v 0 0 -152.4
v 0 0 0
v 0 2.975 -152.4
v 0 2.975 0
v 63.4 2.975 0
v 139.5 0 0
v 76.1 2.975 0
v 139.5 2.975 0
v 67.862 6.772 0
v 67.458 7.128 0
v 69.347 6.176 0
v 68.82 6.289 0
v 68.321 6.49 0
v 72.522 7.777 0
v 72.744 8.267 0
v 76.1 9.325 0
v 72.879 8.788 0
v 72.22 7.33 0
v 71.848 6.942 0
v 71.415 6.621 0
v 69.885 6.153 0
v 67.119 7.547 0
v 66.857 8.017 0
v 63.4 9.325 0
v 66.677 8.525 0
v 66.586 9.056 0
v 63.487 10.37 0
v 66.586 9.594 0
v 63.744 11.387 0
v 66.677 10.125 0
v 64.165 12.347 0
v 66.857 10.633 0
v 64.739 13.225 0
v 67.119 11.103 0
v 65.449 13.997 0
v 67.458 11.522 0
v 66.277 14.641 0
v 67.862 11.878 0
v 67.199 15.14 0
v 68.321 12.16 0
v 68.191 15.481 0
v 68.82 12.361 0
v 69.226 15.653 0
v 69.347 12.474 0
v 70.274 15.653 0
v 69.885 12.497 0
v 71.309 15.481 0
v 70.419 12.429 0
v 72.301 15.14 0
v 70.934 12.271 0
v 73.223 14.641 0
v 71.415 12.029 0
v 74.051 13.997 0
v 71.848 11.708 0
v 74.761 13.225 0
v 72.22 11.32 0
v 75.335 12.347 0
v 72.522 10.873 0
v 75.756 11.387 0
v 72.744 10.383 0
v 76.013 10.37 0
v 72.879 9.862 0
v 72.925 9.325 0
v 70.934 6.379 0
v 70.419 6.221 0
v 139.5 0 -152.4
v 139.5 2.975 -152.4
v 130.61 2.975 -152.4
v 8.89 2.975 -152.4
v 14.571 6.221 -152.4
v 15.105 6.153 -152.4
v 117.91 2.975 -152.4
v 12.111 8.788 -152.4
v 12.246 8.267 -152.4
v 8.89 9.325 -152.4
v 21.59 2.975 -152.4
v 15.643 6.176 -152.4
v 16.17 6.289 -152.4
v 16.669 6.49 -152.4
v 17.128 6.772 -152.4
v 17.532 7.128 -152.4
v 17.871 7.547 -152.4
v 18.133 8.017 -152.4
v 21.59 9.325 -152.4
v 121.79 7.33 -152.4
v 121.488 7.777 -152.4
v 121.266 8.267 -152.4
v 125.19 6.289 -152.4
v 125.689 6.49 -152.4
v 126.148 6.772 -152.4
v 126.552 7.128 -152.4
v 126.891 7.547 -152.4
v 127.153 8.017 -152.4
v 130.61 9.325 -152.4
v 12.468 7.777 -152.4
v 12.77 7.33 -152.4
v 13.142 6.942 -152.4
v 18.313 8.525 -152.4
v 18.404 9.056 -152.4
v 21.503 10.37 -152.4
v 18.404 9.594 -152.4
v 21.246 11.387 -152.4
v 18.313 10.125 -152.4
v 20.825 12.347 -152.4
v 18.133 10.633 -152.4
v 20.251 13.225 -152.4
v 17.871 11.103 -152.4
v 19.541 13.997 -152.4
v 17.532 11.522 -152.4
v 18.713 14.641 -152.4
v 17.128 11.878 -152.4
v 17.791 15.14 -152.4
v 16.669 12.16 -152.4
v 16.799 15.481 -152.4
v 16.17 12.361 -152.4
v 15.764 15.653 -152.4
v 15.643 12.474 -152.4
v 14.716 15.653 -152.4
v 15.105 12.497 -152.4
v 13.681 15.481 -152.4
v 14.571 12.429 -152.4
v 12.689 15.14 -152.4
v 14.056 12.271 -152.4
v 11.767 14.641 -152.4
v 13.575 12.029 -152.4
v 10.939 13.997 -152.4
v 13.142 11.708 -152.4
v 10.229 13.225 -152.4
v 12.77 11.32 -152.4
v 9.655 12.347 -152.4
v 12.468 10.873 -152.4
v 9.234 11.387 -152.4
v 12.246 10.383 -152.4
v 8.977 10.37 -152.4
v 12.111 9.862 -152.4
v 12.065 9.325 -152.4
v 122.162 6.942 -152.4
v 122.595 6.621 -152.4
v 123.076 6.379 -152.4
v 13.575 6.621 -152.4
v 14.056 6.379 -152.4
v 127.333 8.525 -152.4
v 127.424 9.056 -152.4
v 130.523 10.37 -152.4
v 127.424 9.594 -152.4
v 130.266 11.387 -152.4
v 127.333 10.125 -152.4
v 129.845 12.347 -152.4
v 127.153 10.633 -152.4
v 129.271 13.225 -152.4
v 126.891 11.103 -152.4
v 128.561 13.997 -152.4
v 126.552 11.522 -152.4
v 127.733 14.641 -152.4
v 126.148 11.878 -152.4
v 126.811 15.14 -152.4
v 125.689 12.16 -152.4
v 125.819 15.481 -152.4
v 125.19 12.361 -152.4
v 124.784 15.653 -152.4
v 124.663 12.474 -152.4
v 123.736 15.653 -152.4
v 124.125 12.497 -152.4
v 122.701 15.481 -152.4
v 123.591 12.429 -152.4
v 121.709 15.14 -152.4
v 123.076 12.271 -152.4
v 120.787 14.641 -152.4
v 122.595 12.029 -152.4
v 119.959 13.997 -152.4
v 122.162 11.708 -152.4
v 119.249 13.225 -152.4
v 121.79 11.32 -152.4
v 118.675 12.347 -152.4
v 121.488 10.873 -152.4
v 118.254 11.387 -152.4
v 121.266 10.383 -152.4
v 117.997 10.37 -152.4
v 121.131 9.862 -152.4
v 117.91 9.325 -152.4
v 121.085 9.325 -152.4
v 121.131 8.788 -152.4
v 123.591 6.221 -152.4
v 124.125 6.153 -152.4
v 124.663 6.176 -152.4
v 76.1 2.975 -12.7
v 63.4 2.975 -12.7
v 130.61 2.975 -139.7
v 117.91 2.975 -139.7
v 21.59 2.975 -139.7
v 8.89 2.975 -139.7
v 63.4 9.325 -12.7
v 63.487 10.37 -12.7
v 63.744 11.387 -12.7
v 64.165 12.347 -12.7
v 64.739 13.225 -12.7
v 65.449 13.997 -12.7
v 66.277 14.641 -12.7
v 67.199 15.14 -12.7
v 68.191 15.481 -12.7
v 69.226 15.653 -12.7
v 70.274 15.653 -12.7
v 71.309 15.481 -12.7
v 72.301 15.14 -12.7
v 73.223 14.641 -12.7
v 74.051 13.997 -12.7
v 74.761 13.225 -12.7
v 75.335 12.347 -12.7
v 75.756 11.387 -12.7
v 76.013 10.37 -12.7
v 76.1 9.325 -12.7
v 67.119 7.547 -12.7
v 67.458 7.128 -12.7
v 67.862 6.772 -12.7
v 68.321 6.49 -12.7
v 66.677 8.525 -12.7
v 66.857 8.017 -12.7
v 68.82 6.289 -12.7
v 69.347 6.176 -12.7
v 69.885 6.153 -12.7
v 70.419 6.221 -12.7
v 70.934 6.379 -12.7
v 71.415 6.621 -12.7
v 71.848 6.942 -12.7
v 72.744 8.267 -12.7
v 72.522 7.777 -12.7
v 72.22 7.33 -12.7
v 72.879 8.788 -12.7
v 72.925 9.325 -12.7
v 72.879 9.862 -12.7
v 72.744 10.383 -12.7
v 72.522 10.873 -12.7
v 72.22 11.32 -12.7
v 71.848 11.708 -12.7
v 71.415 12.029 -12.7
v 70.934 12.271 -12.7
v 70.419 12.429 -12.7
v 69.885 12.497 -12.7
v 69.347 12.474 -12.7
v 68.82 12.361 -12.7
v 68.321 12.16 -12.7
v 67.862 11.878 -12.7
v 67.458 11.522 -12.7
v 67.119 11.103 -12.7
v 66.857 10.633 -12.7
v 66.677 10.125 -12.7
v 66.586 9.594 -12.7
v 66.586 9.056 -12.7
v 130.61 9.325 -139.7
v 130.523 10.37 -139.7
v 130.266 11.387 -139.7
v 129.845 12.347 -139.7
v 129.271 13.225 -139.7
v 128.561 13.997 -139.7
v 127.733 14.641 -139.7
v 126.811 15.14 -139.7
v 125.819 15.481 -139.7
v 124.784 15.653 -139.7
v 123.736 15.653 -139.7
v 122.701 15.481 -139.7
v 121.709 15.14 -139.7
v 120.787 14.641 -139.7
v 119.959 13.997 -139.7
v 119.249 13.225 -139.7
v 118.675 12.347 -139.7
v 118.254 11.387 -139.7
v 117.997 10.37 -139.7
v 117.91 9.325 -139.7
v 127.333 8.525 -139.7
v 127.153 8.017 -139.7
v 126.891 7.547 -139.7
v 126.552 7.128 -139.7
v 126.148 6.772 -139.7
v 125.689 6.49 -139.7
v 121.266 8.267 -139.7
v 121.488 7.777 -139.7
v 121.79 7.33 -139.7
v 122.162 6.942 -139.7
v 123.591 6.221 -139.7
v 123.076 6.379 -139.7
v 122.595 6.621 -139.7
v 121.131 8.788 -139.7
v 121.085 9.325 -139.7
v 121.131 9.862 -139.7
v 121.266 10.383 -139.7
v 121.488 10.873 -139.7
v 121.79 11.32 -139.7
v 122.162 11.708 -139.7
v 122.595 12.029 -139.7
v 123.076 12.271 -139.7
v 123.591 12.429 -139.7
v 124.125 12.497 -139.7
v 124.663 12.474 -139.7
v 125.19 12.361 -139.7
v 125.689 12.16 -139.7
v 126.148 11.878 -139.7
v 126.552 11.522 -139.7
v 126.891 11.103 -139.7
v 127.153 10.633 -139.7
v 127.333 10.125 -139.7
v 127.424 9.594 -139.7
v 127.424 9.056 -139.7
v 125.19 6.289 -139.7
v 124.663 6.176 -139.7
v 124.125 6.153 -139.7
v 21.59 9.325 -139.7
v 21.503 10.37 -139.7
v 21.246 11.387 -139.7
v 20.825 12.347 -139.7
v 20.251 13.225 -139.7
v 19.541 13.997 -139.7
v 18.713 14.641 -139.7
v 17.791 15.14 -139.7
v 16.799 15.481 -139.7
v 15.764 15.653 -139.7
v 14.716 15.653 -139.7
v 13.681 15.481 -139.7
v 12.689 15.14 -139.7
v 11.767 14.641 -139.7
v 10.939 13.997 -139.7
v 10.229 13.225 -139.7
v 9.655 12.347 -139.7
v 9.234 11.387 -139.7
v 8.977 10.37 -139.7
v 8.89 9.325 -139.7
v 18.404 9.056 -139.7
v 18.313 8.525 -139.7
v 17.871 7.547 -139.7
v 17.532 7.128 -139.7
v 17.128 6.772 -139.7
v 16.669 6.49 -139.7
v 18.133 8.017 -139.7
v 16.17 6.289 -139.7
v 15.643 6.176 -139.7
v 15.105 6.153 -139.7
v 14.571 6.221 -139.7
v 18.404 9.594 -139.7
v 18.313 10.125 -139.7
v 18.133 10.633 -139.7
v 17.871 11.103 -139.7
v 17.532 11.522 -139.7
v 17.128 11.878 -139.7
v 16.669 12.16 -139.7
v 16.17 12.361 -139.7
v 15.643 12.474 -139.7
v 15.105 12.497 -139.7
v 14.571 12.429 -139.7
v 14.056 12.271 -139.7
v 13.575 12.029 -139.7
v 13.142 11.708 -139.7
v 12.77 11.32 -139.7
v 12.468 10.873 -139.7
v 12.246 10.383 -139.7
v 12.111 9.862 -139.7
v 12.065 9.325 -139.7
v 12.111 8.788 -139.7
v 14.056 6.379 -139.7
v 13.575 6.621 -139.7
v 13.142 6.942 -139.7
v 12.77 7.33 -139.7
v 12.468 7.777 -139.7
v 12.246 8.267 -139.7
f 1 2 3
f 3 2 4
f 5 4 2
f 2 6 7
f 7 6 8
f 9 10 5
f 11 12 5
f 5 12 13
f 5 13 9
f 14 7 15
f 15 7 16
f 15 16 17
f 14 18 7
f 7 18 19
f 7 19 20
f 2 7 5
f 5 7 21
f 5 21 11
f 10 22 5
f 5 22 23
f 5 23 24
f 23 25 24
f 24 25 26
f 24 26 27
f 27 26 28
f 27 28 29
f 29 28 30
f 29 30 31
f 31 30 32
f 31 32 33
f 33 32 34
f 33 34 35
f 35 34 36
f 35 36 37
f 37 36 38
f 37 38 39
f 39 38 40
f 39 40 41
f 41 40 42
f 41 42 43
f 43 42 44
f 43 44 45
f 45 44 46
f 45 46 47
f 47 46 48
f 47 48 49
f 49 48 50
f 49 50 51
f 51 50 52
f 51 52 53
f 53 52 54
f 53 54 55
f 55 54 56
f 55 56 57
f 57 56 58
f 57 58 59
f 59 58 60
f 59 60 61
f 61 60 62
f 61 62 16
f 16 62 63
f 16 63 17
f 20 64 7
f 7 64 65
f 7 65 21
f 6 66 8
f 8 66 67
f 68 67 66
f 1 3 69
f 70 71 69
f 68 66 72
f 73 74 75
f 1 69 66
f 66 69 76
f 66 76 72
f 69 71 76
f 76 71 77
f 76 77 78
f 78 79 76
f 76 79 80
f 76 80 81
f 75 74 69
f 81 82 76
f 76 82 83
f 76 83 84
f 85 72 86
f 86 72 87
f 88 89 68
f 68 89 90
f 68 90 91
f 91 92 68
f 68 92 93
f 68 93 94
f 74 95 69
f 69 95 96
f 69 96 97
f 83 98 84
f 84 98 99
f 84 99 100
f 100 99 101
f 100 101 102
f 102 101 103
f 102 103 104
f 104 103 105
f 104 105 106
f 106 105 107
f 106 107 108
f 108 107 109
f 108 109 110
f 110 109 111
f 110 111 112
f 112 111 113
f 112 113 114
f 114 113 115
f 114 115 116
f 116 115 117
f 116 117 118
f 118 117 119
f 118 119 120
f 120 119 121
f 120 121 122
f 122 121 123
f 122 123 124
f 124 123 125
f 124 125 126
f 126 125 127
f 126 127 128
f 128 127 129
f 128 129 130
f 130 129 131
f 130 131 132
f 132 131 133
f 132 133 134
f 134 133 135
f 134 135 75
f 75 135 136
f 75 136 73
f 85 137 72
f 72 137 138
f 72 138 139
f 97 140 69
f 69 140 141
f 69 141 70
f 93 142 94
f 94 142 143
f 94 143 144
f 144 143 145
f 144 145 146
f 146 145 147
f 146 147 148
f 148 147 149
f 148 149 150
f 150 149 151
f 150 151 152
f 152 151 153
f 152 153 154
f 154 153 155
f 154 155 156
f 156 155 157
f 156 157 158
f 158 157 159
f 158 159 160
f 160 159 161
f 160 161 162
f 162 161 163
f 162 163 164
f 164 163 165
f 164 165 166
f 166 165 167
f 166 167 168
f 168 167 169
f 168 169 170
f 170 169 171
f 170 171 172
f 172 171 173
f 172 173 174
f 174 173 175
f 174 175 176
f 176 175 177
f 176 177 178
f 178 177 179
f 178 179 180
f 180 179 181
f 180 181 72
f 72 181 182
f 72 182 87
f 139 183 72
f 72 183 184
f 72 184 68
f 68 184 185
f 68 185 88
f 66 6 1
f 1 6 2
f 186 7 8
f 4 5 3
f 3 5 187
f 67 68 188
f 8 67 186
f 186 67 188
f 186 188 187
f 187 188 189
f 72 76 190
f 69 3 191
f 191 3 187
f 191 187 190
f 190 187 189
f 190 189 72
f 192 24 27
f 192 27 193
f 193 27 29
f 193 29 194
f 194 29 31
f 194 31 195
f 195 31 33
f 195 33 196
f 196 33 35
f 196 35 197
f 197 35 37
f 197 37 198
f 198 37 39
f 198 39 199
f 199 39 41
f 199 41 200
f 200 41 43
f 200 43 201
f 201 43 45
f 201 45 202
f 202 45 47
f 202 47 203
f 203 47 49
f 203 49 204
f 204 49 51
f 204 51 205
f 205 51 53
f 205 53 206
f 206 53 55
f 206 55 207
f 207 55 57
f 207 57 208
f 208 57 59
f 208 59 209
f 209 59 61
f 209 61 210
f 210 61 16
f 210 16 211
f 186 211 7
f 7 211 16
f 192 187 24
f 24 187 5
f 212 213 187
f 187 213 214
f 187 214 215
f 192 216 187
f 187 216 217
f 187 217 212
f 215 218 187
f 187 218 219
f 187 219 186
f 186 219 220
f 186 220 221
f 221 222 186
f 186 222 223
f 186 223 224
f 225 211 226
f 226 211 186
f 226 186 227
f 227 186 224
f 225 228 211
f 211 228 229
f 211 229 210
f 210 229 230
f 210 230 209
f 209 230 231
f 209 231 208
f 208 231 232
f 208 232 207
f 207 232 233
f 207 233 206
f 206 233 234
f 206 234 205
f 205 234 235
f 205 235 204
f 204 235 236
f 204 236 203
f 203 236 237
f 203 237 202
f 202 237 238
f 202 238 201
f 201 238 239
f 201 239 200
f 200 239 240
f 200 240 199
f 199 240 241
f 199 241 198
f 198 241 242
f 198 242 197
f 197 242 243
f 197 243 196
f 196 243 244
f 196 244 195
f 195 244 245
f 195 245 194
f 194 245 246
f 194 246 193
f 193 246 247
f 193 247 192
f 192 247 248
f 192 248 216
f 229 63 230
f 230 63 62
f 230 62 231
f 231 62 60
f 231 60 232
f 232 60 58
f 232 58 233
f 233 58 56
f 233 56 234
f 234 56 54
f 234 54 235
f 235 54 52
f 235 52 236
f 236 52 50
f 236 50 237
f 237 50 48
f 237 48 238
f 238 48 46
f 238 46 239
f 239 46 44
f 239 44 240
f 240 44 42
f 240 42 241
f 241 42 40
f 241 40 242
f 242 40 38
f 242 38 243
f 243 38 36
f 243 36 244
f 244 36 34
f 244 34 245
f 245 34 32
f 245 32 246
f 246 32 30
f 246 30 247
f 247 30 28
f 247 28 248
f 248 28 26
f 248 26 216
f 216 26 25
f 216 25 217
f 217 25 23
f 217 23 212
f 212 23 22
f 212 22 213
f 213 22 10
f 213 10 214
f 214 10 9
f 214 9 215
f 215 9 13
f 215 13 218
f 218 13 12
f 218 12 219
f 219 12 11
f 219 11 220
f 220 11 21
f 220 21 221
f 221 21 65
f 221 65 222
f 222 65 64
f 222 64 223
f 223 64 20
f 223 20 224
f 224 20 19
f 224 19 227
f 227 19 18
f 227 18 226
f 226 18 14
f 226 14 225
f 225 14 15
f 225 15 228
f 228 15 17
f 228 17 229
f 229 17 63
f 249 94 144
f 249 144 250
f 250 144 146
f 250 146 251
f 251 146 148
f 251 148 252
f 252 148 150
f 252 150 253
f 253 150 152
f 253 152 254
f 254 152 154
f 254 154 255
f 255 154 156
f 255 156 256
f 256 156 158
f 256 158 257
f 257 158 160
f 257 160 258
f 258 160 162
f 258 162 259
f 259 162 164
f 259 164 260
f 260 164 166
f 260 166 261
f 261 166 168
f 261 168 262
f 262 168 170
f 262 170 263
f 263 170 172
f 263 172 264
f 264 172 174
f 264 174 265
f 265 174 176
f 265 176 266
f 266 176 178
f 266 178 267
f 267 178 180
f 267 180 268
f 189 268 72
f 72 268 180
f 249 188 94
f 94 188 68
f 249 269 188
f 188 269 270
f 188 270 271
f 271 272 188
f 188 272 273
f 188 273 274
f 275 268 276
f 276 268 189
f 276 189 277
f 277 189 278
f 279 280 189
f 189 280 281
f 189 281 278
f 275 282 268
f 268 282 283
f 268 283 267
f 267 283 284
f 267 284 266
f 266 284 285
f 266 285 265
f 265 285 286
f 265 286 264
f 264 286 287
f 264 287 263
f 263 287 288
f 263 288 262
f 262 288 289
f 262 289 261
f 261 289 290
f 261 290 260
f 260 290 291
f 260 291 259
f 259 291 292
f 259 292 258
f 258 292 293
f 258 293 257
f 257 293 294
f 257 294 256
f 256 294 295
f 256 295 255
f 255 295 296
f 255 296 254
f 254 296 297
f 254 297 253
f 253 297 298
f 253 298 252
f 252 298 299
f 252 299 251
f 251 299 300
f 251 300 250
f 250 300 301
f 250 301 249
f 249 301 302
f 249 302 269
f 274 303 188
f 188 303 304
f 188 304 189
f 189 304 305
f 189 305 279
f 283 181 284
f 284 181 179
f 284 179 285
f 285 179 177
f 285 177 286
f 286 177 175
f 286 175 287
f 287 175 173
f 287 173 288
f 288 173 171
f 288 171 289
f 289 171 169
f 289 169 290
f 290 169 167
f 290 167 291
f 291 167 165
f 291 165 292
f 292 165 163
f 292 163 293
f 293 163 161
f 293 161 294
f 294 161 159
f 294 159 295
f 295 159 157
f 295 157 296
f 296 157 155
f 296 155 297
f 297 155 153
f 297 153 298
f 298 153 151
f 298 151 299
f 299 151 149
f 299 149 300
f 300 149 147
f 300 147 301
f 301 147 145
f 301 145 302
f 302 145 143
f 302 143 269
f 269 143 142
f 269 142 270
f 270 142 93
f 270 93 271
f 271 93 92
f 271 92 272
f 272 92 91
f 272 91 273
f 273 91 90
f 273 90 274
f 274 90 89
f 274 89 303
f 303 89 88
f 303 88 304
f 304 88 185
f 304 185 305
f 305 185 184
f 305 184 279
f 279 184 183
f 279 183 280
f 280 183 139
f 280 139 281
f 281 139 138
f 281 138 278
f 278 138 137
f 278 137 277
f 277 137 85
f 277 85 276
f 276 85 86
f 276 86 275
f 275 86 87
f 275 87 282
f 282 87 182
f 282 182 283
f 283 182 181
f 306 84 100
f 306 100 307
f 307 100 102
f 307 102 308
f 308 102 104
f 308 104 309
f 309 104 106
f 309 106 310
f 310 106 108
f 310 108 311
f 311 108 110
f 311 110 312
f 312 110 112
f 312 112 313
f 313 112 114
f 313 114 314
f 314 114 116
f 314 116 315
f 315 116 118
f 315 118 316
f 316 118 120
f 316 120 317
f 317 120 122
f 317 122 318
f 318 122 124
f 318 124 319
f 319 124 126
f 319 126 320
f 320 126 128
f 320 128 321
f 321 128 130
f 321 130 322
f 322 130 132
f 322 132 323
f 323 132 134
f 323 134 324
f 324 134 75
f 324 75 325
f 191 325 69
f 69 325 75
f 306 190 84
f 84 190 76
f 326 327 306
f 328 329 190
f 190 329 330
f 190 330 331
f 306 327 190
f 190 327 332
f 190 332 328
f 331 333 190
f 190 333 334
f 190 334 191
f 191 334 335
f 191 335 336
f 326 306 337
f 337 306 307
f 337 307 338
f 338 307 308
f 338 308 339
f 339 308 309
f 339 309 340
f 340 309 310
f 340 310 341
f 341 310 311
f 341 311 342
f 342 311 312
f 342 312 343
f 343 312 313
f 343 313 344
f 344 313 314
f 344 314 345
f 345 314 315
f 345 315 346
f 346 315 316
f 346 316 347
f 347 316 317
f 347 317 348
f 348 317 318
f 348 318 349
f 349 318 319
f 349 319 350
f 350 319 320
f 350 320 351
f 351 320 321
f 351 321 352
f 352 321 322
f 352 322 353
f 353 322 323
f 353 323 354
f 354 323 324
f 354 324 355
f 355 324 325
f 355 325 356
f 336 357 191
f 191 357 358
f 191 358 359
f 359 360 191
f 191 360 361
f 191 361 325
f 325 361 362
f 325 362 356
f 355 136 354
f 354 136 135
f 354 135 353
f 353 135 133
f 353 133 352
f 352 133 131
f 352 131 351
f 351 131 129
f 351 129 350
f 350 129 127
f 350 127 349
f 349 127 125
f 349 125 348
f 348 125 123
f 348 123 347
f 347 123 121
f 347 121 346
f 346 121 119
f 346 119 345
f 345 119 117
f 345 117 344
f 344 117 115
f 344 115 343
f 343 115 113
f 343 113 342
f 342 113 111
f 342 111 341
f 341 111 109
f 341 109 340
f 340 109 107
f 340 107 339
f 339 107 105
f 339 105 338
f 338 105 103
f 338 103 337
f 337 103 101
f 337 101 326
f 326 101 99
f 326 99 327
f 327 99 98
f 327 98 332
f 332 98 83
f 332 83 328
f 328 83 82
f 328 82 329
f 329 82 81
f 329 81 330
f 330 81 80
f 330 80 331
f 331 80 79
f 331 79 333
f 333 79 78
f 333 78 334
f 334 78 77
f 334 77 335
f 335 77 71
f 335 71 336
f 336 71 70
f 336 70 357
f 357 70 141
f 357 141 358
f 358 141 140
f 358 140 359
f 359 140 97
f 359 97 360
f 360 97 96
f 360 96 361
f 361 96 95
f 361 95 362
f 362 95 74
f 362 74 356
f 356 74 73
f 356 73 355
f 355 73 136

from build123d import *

# Parameters (mm, degrees)
SKETCH1_W           = 139.5
SKETCH1_H           = 152.4
BOSS_EXTRUDE1_DEPTH = 6.35
SKETCH2_W           = 139.5
SKETCH2_H           = 152.4
CUT_EXTRUDE1_DEPTH  = 3.375
SKETCH3_R           = 3.175
BOSS_EXTRUDE2_DEPTH = 12.7
SKETCH4_R           = 3.175000001
SKETCH4_R_2         = 3.175
BOSS_EXTRUDE3_DEPTH = 12.7


with BuildPart() as part:
    # Sketch1 → Boss-Extrude1 (new body)
    with BuildSketch(Plane(origin=(0, 0, 0), x_dir=(1, 0, 0), z_dir=(0, 1, 0))):
        with Locations((69.75, 76.2)):
            Rectangle(SKETCH1_W, SKETCH1_H)
    extrude(amount=BOSS_EXTRUDE1_DEPTH)

    # Sketch2 → Cut-Extrude1 (cut)
    with BuildSketch(Plane(origin=(0, 6.35, 0), x_dir=(1, 0, 0), z_dir=(0, 1, 0))):
        with Locations((69.75, 76.2)):
            Rectangle(SKETCH2_W, SKETCH2_H)
    extrude(amount=-CUT_EXTRUDE1_DEPTH, mode=Mode.SUBTRACT)

    # Sketch3 → Boss-Extrude2 (add)
    with BuildSketch(Plane.XY):
        with BuildLine():
            Line((63.4, 9.325), (63.4, 2.975))
            Line((63.4, 2.975), (76.1, 2.975))
            Line((76.1, 2.975), (76.1, 9.325000633))
            ThreePointArc((76.1, 9.325000633), (69.749999683, 15.675000317), (63.4, 9.325))
        make_face()
        with Locations((69.75, 9.325000317)):
            Circle(SKETCH3_R, mode=Mode.SUBTRACT)
    extrude(amount=-BOSS_EXTRUDE2_DEPTH)

    # Sketch4 → Boss-Extrude3 (add)
    with BuildSketch(Plane(origin=(0, 0, -152.4), x_dir=(-1, 0, 0), z_dir=(0, 0, -1))):
        with BuildLine():
            Line((-130.61, 9.325), (-130.61, 2.975))
            Line((-130.61, 2.975), (-117.91, 2.975))
            Line((-117.91, 2.975), (-117.91, 9.325))
            ThreePointArc((-117.91, 9.325), (-124.26, 15.675), (-130.61, 9.325))
        make_face()
        with Locations((-124.26, 9.325)):
            Circle(SKETCH4_R, mode=Mode.SUBTRACT)
        with BuildLine():
            Line((-21.59, 9.325), (-21.59, 2.975))
            Line((-21.59, 2.975), (-8.89, 2.975))
            Line((-8.89, 2.975), (-8.89, 9.325))
            ThreePointArc((-8.89, 9.325), (-15.24, 15.675), (-21.59, 9.325))
        make_face()
        with Locations((-15.24, 9.325)):
            Circle(SKETCH4_R_2, mode=Mode.SUBTRACT)
    extrude(amount=-BOSS_EXTRUDE3_DEPTH)


solid = part.part
